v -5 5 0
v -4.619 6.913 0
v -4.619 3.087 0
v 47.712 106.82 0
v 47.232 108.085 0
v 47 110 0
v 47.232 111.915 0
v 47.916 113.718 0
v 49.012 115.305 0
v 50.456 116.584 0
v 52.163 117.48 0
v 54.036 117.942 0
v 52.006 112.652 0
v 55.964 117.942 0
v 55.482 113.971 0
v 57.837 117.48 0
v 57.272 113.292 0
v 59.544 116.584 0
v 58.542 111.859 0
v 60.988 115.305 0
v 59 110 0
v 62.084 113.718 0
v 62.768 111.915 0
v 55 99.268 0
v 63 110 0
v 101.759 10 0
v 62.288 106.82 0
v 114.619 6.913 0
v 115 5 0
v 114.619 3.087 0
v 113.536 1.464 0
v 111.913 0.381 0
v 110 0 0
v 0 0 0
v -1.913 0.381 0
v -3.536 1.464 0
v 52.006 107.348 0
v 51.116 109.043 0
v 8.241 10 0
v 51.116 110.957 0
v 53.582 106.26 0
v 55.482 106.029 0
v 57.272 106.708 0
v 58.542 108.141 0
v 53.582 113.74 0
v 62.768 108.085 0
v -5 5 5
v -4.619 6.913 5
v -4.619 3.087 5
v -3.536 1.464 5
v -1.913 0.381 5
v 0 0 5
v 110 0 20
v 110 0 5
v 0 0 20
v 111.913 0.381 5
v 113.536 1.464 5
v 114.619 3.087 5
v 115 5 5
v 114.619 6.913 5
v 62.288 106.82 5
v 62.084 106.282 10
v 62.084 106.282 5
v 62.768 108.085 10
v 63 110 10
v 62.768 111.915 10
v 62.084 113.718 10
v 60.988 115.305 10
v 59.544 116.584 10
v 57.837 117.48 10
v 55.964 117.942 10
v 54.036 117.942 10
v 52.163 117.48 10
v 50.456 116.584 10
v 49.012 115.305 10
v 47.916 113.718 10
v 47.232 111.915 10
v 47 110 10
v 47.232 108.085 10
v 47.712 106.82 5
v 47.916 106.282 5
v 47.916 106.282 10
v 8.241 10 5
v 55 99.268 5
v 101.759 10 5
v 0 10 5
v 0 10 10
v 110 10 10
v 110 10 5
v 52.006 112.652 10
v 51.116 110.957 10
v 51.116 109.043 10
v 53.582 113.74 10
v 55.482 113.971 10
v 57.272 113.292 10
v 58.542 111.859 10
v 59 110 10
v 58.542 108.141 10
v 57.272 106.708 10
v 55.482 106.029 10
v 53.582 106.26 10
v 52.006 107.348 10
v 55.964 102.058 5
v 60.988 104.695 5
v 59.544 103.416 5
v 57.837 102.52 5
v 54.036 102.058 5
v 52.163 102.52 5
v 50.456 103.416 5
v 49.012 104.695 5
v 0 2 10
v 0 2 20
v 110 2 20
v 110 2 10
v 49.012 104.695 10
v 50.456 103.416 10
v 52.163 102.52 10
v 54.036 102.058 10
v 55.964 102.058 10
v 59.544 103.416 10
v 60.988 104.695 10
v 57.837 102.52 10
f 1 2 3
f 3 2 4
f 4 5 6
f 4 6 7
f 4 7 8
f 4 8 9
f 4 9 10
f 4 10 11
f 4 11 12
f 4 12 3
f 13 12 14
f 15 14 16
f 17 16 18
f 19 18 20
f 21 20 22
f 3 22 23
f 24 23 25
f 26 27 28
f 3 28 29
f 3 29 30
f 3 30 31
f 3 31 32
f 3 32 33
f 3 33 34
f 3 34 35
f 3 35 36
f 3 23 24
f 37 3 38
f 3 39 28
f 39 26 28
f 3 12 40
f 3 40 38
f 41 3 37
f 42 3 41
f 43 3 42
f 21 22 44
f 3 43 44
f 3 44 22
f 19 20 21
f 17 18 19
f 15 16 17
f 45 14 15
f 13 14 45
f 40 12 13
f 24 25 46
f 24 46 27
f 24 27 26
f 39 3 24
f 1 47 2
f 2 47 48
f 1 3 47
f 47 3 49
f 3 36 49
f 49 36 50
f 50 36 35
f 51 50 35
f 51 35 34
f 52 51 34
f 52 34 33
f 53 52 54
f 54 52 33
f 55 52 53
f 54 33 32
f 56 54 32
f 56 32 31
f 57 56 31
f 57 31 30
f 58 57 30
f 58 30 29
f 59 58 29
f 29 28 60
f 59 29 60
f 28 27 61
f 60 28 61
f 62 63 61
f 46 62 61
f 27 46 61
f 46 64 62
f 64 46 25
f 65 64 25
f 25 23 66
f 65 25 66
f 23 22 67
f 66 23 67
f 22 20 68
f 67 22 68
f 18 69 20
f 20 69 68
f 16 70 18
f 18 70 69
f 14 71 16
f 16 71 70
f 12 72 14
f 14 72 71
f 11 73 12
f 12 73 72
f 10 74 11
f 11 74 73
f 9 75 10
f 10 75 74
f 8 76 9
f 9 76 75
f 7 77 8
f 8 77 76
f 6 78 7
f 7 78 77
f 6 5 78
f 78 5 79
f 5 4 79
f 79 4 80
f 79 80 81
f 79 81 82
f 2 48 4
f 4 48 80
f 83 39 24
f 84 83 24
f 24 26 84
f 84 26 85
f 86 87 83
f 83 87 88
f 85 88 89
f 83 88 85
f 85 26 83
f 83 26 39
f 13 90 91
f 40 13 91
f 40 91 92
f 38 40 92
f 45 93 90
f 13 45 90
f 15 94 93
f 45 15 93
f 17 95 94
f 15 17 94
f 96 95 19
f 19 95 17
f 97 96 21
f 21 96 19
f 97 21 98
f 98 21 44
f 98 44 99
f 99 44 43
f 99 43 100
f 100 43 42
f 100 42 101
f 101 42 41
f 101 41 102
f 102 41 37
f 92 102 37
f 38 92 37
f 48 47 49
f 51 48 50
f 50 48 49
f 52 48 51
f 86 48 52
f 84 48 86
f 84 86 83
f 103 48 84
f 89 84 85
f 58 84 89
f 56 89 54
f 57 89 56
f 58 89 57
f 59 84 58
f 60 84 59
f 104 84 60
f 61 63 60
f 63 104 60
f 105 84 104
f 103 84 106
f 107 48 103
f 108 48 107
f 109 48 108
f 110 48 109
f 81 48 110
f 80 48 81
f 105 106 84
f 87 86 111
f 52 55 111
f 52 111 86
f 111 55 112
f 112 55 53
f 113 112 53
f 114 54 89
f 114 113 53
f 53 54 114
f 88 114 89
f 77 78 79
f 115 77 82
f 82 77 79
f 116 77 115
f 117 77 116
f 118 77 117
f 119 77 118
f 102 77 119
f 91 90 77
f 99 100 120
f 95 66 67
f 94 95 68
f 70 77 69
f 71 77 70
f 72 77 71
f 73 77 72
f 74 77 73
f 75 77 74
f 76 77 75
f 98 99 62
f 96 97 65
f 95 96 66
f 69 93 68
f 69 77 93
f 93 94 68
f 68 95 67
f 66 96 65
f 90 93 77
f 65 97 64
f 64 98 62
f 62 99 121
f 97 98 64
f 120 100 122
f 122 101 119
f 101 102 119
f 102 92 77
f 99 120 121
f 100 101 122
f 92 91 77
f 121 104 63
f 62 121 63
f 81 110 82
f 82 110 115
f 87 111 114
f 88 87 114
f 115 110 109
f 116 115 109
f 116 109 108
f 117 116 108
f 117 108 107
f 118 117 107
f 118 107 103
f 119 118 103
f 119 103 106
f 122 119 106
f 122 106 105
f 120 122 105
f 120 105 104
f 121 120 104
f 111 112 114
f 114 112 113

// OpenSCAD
height =110;

axle = 8;

base = 110;


difference(){

union(){

cube([base,10,10]);
cube([base,2,20]);
hull(){
translate([0,5,0])
cylinder(r=5, h=5, ceter=true);
translate([(base/2),height,0])
cylinder(r=5, h=5, ceter=true);
}

hull(){
translate([(base/2),height,0])
cylinder(r=5, h=5, ceter=true);
translate([base,5,0])
cylinder(r=5, h=5, ceter=true);
}


translate([(base/2),height,0])
cylinder(r=axle,h=10);
}
translate([(base/2),height,-1])
cylinder(r=(axle/2),h=12);
}
